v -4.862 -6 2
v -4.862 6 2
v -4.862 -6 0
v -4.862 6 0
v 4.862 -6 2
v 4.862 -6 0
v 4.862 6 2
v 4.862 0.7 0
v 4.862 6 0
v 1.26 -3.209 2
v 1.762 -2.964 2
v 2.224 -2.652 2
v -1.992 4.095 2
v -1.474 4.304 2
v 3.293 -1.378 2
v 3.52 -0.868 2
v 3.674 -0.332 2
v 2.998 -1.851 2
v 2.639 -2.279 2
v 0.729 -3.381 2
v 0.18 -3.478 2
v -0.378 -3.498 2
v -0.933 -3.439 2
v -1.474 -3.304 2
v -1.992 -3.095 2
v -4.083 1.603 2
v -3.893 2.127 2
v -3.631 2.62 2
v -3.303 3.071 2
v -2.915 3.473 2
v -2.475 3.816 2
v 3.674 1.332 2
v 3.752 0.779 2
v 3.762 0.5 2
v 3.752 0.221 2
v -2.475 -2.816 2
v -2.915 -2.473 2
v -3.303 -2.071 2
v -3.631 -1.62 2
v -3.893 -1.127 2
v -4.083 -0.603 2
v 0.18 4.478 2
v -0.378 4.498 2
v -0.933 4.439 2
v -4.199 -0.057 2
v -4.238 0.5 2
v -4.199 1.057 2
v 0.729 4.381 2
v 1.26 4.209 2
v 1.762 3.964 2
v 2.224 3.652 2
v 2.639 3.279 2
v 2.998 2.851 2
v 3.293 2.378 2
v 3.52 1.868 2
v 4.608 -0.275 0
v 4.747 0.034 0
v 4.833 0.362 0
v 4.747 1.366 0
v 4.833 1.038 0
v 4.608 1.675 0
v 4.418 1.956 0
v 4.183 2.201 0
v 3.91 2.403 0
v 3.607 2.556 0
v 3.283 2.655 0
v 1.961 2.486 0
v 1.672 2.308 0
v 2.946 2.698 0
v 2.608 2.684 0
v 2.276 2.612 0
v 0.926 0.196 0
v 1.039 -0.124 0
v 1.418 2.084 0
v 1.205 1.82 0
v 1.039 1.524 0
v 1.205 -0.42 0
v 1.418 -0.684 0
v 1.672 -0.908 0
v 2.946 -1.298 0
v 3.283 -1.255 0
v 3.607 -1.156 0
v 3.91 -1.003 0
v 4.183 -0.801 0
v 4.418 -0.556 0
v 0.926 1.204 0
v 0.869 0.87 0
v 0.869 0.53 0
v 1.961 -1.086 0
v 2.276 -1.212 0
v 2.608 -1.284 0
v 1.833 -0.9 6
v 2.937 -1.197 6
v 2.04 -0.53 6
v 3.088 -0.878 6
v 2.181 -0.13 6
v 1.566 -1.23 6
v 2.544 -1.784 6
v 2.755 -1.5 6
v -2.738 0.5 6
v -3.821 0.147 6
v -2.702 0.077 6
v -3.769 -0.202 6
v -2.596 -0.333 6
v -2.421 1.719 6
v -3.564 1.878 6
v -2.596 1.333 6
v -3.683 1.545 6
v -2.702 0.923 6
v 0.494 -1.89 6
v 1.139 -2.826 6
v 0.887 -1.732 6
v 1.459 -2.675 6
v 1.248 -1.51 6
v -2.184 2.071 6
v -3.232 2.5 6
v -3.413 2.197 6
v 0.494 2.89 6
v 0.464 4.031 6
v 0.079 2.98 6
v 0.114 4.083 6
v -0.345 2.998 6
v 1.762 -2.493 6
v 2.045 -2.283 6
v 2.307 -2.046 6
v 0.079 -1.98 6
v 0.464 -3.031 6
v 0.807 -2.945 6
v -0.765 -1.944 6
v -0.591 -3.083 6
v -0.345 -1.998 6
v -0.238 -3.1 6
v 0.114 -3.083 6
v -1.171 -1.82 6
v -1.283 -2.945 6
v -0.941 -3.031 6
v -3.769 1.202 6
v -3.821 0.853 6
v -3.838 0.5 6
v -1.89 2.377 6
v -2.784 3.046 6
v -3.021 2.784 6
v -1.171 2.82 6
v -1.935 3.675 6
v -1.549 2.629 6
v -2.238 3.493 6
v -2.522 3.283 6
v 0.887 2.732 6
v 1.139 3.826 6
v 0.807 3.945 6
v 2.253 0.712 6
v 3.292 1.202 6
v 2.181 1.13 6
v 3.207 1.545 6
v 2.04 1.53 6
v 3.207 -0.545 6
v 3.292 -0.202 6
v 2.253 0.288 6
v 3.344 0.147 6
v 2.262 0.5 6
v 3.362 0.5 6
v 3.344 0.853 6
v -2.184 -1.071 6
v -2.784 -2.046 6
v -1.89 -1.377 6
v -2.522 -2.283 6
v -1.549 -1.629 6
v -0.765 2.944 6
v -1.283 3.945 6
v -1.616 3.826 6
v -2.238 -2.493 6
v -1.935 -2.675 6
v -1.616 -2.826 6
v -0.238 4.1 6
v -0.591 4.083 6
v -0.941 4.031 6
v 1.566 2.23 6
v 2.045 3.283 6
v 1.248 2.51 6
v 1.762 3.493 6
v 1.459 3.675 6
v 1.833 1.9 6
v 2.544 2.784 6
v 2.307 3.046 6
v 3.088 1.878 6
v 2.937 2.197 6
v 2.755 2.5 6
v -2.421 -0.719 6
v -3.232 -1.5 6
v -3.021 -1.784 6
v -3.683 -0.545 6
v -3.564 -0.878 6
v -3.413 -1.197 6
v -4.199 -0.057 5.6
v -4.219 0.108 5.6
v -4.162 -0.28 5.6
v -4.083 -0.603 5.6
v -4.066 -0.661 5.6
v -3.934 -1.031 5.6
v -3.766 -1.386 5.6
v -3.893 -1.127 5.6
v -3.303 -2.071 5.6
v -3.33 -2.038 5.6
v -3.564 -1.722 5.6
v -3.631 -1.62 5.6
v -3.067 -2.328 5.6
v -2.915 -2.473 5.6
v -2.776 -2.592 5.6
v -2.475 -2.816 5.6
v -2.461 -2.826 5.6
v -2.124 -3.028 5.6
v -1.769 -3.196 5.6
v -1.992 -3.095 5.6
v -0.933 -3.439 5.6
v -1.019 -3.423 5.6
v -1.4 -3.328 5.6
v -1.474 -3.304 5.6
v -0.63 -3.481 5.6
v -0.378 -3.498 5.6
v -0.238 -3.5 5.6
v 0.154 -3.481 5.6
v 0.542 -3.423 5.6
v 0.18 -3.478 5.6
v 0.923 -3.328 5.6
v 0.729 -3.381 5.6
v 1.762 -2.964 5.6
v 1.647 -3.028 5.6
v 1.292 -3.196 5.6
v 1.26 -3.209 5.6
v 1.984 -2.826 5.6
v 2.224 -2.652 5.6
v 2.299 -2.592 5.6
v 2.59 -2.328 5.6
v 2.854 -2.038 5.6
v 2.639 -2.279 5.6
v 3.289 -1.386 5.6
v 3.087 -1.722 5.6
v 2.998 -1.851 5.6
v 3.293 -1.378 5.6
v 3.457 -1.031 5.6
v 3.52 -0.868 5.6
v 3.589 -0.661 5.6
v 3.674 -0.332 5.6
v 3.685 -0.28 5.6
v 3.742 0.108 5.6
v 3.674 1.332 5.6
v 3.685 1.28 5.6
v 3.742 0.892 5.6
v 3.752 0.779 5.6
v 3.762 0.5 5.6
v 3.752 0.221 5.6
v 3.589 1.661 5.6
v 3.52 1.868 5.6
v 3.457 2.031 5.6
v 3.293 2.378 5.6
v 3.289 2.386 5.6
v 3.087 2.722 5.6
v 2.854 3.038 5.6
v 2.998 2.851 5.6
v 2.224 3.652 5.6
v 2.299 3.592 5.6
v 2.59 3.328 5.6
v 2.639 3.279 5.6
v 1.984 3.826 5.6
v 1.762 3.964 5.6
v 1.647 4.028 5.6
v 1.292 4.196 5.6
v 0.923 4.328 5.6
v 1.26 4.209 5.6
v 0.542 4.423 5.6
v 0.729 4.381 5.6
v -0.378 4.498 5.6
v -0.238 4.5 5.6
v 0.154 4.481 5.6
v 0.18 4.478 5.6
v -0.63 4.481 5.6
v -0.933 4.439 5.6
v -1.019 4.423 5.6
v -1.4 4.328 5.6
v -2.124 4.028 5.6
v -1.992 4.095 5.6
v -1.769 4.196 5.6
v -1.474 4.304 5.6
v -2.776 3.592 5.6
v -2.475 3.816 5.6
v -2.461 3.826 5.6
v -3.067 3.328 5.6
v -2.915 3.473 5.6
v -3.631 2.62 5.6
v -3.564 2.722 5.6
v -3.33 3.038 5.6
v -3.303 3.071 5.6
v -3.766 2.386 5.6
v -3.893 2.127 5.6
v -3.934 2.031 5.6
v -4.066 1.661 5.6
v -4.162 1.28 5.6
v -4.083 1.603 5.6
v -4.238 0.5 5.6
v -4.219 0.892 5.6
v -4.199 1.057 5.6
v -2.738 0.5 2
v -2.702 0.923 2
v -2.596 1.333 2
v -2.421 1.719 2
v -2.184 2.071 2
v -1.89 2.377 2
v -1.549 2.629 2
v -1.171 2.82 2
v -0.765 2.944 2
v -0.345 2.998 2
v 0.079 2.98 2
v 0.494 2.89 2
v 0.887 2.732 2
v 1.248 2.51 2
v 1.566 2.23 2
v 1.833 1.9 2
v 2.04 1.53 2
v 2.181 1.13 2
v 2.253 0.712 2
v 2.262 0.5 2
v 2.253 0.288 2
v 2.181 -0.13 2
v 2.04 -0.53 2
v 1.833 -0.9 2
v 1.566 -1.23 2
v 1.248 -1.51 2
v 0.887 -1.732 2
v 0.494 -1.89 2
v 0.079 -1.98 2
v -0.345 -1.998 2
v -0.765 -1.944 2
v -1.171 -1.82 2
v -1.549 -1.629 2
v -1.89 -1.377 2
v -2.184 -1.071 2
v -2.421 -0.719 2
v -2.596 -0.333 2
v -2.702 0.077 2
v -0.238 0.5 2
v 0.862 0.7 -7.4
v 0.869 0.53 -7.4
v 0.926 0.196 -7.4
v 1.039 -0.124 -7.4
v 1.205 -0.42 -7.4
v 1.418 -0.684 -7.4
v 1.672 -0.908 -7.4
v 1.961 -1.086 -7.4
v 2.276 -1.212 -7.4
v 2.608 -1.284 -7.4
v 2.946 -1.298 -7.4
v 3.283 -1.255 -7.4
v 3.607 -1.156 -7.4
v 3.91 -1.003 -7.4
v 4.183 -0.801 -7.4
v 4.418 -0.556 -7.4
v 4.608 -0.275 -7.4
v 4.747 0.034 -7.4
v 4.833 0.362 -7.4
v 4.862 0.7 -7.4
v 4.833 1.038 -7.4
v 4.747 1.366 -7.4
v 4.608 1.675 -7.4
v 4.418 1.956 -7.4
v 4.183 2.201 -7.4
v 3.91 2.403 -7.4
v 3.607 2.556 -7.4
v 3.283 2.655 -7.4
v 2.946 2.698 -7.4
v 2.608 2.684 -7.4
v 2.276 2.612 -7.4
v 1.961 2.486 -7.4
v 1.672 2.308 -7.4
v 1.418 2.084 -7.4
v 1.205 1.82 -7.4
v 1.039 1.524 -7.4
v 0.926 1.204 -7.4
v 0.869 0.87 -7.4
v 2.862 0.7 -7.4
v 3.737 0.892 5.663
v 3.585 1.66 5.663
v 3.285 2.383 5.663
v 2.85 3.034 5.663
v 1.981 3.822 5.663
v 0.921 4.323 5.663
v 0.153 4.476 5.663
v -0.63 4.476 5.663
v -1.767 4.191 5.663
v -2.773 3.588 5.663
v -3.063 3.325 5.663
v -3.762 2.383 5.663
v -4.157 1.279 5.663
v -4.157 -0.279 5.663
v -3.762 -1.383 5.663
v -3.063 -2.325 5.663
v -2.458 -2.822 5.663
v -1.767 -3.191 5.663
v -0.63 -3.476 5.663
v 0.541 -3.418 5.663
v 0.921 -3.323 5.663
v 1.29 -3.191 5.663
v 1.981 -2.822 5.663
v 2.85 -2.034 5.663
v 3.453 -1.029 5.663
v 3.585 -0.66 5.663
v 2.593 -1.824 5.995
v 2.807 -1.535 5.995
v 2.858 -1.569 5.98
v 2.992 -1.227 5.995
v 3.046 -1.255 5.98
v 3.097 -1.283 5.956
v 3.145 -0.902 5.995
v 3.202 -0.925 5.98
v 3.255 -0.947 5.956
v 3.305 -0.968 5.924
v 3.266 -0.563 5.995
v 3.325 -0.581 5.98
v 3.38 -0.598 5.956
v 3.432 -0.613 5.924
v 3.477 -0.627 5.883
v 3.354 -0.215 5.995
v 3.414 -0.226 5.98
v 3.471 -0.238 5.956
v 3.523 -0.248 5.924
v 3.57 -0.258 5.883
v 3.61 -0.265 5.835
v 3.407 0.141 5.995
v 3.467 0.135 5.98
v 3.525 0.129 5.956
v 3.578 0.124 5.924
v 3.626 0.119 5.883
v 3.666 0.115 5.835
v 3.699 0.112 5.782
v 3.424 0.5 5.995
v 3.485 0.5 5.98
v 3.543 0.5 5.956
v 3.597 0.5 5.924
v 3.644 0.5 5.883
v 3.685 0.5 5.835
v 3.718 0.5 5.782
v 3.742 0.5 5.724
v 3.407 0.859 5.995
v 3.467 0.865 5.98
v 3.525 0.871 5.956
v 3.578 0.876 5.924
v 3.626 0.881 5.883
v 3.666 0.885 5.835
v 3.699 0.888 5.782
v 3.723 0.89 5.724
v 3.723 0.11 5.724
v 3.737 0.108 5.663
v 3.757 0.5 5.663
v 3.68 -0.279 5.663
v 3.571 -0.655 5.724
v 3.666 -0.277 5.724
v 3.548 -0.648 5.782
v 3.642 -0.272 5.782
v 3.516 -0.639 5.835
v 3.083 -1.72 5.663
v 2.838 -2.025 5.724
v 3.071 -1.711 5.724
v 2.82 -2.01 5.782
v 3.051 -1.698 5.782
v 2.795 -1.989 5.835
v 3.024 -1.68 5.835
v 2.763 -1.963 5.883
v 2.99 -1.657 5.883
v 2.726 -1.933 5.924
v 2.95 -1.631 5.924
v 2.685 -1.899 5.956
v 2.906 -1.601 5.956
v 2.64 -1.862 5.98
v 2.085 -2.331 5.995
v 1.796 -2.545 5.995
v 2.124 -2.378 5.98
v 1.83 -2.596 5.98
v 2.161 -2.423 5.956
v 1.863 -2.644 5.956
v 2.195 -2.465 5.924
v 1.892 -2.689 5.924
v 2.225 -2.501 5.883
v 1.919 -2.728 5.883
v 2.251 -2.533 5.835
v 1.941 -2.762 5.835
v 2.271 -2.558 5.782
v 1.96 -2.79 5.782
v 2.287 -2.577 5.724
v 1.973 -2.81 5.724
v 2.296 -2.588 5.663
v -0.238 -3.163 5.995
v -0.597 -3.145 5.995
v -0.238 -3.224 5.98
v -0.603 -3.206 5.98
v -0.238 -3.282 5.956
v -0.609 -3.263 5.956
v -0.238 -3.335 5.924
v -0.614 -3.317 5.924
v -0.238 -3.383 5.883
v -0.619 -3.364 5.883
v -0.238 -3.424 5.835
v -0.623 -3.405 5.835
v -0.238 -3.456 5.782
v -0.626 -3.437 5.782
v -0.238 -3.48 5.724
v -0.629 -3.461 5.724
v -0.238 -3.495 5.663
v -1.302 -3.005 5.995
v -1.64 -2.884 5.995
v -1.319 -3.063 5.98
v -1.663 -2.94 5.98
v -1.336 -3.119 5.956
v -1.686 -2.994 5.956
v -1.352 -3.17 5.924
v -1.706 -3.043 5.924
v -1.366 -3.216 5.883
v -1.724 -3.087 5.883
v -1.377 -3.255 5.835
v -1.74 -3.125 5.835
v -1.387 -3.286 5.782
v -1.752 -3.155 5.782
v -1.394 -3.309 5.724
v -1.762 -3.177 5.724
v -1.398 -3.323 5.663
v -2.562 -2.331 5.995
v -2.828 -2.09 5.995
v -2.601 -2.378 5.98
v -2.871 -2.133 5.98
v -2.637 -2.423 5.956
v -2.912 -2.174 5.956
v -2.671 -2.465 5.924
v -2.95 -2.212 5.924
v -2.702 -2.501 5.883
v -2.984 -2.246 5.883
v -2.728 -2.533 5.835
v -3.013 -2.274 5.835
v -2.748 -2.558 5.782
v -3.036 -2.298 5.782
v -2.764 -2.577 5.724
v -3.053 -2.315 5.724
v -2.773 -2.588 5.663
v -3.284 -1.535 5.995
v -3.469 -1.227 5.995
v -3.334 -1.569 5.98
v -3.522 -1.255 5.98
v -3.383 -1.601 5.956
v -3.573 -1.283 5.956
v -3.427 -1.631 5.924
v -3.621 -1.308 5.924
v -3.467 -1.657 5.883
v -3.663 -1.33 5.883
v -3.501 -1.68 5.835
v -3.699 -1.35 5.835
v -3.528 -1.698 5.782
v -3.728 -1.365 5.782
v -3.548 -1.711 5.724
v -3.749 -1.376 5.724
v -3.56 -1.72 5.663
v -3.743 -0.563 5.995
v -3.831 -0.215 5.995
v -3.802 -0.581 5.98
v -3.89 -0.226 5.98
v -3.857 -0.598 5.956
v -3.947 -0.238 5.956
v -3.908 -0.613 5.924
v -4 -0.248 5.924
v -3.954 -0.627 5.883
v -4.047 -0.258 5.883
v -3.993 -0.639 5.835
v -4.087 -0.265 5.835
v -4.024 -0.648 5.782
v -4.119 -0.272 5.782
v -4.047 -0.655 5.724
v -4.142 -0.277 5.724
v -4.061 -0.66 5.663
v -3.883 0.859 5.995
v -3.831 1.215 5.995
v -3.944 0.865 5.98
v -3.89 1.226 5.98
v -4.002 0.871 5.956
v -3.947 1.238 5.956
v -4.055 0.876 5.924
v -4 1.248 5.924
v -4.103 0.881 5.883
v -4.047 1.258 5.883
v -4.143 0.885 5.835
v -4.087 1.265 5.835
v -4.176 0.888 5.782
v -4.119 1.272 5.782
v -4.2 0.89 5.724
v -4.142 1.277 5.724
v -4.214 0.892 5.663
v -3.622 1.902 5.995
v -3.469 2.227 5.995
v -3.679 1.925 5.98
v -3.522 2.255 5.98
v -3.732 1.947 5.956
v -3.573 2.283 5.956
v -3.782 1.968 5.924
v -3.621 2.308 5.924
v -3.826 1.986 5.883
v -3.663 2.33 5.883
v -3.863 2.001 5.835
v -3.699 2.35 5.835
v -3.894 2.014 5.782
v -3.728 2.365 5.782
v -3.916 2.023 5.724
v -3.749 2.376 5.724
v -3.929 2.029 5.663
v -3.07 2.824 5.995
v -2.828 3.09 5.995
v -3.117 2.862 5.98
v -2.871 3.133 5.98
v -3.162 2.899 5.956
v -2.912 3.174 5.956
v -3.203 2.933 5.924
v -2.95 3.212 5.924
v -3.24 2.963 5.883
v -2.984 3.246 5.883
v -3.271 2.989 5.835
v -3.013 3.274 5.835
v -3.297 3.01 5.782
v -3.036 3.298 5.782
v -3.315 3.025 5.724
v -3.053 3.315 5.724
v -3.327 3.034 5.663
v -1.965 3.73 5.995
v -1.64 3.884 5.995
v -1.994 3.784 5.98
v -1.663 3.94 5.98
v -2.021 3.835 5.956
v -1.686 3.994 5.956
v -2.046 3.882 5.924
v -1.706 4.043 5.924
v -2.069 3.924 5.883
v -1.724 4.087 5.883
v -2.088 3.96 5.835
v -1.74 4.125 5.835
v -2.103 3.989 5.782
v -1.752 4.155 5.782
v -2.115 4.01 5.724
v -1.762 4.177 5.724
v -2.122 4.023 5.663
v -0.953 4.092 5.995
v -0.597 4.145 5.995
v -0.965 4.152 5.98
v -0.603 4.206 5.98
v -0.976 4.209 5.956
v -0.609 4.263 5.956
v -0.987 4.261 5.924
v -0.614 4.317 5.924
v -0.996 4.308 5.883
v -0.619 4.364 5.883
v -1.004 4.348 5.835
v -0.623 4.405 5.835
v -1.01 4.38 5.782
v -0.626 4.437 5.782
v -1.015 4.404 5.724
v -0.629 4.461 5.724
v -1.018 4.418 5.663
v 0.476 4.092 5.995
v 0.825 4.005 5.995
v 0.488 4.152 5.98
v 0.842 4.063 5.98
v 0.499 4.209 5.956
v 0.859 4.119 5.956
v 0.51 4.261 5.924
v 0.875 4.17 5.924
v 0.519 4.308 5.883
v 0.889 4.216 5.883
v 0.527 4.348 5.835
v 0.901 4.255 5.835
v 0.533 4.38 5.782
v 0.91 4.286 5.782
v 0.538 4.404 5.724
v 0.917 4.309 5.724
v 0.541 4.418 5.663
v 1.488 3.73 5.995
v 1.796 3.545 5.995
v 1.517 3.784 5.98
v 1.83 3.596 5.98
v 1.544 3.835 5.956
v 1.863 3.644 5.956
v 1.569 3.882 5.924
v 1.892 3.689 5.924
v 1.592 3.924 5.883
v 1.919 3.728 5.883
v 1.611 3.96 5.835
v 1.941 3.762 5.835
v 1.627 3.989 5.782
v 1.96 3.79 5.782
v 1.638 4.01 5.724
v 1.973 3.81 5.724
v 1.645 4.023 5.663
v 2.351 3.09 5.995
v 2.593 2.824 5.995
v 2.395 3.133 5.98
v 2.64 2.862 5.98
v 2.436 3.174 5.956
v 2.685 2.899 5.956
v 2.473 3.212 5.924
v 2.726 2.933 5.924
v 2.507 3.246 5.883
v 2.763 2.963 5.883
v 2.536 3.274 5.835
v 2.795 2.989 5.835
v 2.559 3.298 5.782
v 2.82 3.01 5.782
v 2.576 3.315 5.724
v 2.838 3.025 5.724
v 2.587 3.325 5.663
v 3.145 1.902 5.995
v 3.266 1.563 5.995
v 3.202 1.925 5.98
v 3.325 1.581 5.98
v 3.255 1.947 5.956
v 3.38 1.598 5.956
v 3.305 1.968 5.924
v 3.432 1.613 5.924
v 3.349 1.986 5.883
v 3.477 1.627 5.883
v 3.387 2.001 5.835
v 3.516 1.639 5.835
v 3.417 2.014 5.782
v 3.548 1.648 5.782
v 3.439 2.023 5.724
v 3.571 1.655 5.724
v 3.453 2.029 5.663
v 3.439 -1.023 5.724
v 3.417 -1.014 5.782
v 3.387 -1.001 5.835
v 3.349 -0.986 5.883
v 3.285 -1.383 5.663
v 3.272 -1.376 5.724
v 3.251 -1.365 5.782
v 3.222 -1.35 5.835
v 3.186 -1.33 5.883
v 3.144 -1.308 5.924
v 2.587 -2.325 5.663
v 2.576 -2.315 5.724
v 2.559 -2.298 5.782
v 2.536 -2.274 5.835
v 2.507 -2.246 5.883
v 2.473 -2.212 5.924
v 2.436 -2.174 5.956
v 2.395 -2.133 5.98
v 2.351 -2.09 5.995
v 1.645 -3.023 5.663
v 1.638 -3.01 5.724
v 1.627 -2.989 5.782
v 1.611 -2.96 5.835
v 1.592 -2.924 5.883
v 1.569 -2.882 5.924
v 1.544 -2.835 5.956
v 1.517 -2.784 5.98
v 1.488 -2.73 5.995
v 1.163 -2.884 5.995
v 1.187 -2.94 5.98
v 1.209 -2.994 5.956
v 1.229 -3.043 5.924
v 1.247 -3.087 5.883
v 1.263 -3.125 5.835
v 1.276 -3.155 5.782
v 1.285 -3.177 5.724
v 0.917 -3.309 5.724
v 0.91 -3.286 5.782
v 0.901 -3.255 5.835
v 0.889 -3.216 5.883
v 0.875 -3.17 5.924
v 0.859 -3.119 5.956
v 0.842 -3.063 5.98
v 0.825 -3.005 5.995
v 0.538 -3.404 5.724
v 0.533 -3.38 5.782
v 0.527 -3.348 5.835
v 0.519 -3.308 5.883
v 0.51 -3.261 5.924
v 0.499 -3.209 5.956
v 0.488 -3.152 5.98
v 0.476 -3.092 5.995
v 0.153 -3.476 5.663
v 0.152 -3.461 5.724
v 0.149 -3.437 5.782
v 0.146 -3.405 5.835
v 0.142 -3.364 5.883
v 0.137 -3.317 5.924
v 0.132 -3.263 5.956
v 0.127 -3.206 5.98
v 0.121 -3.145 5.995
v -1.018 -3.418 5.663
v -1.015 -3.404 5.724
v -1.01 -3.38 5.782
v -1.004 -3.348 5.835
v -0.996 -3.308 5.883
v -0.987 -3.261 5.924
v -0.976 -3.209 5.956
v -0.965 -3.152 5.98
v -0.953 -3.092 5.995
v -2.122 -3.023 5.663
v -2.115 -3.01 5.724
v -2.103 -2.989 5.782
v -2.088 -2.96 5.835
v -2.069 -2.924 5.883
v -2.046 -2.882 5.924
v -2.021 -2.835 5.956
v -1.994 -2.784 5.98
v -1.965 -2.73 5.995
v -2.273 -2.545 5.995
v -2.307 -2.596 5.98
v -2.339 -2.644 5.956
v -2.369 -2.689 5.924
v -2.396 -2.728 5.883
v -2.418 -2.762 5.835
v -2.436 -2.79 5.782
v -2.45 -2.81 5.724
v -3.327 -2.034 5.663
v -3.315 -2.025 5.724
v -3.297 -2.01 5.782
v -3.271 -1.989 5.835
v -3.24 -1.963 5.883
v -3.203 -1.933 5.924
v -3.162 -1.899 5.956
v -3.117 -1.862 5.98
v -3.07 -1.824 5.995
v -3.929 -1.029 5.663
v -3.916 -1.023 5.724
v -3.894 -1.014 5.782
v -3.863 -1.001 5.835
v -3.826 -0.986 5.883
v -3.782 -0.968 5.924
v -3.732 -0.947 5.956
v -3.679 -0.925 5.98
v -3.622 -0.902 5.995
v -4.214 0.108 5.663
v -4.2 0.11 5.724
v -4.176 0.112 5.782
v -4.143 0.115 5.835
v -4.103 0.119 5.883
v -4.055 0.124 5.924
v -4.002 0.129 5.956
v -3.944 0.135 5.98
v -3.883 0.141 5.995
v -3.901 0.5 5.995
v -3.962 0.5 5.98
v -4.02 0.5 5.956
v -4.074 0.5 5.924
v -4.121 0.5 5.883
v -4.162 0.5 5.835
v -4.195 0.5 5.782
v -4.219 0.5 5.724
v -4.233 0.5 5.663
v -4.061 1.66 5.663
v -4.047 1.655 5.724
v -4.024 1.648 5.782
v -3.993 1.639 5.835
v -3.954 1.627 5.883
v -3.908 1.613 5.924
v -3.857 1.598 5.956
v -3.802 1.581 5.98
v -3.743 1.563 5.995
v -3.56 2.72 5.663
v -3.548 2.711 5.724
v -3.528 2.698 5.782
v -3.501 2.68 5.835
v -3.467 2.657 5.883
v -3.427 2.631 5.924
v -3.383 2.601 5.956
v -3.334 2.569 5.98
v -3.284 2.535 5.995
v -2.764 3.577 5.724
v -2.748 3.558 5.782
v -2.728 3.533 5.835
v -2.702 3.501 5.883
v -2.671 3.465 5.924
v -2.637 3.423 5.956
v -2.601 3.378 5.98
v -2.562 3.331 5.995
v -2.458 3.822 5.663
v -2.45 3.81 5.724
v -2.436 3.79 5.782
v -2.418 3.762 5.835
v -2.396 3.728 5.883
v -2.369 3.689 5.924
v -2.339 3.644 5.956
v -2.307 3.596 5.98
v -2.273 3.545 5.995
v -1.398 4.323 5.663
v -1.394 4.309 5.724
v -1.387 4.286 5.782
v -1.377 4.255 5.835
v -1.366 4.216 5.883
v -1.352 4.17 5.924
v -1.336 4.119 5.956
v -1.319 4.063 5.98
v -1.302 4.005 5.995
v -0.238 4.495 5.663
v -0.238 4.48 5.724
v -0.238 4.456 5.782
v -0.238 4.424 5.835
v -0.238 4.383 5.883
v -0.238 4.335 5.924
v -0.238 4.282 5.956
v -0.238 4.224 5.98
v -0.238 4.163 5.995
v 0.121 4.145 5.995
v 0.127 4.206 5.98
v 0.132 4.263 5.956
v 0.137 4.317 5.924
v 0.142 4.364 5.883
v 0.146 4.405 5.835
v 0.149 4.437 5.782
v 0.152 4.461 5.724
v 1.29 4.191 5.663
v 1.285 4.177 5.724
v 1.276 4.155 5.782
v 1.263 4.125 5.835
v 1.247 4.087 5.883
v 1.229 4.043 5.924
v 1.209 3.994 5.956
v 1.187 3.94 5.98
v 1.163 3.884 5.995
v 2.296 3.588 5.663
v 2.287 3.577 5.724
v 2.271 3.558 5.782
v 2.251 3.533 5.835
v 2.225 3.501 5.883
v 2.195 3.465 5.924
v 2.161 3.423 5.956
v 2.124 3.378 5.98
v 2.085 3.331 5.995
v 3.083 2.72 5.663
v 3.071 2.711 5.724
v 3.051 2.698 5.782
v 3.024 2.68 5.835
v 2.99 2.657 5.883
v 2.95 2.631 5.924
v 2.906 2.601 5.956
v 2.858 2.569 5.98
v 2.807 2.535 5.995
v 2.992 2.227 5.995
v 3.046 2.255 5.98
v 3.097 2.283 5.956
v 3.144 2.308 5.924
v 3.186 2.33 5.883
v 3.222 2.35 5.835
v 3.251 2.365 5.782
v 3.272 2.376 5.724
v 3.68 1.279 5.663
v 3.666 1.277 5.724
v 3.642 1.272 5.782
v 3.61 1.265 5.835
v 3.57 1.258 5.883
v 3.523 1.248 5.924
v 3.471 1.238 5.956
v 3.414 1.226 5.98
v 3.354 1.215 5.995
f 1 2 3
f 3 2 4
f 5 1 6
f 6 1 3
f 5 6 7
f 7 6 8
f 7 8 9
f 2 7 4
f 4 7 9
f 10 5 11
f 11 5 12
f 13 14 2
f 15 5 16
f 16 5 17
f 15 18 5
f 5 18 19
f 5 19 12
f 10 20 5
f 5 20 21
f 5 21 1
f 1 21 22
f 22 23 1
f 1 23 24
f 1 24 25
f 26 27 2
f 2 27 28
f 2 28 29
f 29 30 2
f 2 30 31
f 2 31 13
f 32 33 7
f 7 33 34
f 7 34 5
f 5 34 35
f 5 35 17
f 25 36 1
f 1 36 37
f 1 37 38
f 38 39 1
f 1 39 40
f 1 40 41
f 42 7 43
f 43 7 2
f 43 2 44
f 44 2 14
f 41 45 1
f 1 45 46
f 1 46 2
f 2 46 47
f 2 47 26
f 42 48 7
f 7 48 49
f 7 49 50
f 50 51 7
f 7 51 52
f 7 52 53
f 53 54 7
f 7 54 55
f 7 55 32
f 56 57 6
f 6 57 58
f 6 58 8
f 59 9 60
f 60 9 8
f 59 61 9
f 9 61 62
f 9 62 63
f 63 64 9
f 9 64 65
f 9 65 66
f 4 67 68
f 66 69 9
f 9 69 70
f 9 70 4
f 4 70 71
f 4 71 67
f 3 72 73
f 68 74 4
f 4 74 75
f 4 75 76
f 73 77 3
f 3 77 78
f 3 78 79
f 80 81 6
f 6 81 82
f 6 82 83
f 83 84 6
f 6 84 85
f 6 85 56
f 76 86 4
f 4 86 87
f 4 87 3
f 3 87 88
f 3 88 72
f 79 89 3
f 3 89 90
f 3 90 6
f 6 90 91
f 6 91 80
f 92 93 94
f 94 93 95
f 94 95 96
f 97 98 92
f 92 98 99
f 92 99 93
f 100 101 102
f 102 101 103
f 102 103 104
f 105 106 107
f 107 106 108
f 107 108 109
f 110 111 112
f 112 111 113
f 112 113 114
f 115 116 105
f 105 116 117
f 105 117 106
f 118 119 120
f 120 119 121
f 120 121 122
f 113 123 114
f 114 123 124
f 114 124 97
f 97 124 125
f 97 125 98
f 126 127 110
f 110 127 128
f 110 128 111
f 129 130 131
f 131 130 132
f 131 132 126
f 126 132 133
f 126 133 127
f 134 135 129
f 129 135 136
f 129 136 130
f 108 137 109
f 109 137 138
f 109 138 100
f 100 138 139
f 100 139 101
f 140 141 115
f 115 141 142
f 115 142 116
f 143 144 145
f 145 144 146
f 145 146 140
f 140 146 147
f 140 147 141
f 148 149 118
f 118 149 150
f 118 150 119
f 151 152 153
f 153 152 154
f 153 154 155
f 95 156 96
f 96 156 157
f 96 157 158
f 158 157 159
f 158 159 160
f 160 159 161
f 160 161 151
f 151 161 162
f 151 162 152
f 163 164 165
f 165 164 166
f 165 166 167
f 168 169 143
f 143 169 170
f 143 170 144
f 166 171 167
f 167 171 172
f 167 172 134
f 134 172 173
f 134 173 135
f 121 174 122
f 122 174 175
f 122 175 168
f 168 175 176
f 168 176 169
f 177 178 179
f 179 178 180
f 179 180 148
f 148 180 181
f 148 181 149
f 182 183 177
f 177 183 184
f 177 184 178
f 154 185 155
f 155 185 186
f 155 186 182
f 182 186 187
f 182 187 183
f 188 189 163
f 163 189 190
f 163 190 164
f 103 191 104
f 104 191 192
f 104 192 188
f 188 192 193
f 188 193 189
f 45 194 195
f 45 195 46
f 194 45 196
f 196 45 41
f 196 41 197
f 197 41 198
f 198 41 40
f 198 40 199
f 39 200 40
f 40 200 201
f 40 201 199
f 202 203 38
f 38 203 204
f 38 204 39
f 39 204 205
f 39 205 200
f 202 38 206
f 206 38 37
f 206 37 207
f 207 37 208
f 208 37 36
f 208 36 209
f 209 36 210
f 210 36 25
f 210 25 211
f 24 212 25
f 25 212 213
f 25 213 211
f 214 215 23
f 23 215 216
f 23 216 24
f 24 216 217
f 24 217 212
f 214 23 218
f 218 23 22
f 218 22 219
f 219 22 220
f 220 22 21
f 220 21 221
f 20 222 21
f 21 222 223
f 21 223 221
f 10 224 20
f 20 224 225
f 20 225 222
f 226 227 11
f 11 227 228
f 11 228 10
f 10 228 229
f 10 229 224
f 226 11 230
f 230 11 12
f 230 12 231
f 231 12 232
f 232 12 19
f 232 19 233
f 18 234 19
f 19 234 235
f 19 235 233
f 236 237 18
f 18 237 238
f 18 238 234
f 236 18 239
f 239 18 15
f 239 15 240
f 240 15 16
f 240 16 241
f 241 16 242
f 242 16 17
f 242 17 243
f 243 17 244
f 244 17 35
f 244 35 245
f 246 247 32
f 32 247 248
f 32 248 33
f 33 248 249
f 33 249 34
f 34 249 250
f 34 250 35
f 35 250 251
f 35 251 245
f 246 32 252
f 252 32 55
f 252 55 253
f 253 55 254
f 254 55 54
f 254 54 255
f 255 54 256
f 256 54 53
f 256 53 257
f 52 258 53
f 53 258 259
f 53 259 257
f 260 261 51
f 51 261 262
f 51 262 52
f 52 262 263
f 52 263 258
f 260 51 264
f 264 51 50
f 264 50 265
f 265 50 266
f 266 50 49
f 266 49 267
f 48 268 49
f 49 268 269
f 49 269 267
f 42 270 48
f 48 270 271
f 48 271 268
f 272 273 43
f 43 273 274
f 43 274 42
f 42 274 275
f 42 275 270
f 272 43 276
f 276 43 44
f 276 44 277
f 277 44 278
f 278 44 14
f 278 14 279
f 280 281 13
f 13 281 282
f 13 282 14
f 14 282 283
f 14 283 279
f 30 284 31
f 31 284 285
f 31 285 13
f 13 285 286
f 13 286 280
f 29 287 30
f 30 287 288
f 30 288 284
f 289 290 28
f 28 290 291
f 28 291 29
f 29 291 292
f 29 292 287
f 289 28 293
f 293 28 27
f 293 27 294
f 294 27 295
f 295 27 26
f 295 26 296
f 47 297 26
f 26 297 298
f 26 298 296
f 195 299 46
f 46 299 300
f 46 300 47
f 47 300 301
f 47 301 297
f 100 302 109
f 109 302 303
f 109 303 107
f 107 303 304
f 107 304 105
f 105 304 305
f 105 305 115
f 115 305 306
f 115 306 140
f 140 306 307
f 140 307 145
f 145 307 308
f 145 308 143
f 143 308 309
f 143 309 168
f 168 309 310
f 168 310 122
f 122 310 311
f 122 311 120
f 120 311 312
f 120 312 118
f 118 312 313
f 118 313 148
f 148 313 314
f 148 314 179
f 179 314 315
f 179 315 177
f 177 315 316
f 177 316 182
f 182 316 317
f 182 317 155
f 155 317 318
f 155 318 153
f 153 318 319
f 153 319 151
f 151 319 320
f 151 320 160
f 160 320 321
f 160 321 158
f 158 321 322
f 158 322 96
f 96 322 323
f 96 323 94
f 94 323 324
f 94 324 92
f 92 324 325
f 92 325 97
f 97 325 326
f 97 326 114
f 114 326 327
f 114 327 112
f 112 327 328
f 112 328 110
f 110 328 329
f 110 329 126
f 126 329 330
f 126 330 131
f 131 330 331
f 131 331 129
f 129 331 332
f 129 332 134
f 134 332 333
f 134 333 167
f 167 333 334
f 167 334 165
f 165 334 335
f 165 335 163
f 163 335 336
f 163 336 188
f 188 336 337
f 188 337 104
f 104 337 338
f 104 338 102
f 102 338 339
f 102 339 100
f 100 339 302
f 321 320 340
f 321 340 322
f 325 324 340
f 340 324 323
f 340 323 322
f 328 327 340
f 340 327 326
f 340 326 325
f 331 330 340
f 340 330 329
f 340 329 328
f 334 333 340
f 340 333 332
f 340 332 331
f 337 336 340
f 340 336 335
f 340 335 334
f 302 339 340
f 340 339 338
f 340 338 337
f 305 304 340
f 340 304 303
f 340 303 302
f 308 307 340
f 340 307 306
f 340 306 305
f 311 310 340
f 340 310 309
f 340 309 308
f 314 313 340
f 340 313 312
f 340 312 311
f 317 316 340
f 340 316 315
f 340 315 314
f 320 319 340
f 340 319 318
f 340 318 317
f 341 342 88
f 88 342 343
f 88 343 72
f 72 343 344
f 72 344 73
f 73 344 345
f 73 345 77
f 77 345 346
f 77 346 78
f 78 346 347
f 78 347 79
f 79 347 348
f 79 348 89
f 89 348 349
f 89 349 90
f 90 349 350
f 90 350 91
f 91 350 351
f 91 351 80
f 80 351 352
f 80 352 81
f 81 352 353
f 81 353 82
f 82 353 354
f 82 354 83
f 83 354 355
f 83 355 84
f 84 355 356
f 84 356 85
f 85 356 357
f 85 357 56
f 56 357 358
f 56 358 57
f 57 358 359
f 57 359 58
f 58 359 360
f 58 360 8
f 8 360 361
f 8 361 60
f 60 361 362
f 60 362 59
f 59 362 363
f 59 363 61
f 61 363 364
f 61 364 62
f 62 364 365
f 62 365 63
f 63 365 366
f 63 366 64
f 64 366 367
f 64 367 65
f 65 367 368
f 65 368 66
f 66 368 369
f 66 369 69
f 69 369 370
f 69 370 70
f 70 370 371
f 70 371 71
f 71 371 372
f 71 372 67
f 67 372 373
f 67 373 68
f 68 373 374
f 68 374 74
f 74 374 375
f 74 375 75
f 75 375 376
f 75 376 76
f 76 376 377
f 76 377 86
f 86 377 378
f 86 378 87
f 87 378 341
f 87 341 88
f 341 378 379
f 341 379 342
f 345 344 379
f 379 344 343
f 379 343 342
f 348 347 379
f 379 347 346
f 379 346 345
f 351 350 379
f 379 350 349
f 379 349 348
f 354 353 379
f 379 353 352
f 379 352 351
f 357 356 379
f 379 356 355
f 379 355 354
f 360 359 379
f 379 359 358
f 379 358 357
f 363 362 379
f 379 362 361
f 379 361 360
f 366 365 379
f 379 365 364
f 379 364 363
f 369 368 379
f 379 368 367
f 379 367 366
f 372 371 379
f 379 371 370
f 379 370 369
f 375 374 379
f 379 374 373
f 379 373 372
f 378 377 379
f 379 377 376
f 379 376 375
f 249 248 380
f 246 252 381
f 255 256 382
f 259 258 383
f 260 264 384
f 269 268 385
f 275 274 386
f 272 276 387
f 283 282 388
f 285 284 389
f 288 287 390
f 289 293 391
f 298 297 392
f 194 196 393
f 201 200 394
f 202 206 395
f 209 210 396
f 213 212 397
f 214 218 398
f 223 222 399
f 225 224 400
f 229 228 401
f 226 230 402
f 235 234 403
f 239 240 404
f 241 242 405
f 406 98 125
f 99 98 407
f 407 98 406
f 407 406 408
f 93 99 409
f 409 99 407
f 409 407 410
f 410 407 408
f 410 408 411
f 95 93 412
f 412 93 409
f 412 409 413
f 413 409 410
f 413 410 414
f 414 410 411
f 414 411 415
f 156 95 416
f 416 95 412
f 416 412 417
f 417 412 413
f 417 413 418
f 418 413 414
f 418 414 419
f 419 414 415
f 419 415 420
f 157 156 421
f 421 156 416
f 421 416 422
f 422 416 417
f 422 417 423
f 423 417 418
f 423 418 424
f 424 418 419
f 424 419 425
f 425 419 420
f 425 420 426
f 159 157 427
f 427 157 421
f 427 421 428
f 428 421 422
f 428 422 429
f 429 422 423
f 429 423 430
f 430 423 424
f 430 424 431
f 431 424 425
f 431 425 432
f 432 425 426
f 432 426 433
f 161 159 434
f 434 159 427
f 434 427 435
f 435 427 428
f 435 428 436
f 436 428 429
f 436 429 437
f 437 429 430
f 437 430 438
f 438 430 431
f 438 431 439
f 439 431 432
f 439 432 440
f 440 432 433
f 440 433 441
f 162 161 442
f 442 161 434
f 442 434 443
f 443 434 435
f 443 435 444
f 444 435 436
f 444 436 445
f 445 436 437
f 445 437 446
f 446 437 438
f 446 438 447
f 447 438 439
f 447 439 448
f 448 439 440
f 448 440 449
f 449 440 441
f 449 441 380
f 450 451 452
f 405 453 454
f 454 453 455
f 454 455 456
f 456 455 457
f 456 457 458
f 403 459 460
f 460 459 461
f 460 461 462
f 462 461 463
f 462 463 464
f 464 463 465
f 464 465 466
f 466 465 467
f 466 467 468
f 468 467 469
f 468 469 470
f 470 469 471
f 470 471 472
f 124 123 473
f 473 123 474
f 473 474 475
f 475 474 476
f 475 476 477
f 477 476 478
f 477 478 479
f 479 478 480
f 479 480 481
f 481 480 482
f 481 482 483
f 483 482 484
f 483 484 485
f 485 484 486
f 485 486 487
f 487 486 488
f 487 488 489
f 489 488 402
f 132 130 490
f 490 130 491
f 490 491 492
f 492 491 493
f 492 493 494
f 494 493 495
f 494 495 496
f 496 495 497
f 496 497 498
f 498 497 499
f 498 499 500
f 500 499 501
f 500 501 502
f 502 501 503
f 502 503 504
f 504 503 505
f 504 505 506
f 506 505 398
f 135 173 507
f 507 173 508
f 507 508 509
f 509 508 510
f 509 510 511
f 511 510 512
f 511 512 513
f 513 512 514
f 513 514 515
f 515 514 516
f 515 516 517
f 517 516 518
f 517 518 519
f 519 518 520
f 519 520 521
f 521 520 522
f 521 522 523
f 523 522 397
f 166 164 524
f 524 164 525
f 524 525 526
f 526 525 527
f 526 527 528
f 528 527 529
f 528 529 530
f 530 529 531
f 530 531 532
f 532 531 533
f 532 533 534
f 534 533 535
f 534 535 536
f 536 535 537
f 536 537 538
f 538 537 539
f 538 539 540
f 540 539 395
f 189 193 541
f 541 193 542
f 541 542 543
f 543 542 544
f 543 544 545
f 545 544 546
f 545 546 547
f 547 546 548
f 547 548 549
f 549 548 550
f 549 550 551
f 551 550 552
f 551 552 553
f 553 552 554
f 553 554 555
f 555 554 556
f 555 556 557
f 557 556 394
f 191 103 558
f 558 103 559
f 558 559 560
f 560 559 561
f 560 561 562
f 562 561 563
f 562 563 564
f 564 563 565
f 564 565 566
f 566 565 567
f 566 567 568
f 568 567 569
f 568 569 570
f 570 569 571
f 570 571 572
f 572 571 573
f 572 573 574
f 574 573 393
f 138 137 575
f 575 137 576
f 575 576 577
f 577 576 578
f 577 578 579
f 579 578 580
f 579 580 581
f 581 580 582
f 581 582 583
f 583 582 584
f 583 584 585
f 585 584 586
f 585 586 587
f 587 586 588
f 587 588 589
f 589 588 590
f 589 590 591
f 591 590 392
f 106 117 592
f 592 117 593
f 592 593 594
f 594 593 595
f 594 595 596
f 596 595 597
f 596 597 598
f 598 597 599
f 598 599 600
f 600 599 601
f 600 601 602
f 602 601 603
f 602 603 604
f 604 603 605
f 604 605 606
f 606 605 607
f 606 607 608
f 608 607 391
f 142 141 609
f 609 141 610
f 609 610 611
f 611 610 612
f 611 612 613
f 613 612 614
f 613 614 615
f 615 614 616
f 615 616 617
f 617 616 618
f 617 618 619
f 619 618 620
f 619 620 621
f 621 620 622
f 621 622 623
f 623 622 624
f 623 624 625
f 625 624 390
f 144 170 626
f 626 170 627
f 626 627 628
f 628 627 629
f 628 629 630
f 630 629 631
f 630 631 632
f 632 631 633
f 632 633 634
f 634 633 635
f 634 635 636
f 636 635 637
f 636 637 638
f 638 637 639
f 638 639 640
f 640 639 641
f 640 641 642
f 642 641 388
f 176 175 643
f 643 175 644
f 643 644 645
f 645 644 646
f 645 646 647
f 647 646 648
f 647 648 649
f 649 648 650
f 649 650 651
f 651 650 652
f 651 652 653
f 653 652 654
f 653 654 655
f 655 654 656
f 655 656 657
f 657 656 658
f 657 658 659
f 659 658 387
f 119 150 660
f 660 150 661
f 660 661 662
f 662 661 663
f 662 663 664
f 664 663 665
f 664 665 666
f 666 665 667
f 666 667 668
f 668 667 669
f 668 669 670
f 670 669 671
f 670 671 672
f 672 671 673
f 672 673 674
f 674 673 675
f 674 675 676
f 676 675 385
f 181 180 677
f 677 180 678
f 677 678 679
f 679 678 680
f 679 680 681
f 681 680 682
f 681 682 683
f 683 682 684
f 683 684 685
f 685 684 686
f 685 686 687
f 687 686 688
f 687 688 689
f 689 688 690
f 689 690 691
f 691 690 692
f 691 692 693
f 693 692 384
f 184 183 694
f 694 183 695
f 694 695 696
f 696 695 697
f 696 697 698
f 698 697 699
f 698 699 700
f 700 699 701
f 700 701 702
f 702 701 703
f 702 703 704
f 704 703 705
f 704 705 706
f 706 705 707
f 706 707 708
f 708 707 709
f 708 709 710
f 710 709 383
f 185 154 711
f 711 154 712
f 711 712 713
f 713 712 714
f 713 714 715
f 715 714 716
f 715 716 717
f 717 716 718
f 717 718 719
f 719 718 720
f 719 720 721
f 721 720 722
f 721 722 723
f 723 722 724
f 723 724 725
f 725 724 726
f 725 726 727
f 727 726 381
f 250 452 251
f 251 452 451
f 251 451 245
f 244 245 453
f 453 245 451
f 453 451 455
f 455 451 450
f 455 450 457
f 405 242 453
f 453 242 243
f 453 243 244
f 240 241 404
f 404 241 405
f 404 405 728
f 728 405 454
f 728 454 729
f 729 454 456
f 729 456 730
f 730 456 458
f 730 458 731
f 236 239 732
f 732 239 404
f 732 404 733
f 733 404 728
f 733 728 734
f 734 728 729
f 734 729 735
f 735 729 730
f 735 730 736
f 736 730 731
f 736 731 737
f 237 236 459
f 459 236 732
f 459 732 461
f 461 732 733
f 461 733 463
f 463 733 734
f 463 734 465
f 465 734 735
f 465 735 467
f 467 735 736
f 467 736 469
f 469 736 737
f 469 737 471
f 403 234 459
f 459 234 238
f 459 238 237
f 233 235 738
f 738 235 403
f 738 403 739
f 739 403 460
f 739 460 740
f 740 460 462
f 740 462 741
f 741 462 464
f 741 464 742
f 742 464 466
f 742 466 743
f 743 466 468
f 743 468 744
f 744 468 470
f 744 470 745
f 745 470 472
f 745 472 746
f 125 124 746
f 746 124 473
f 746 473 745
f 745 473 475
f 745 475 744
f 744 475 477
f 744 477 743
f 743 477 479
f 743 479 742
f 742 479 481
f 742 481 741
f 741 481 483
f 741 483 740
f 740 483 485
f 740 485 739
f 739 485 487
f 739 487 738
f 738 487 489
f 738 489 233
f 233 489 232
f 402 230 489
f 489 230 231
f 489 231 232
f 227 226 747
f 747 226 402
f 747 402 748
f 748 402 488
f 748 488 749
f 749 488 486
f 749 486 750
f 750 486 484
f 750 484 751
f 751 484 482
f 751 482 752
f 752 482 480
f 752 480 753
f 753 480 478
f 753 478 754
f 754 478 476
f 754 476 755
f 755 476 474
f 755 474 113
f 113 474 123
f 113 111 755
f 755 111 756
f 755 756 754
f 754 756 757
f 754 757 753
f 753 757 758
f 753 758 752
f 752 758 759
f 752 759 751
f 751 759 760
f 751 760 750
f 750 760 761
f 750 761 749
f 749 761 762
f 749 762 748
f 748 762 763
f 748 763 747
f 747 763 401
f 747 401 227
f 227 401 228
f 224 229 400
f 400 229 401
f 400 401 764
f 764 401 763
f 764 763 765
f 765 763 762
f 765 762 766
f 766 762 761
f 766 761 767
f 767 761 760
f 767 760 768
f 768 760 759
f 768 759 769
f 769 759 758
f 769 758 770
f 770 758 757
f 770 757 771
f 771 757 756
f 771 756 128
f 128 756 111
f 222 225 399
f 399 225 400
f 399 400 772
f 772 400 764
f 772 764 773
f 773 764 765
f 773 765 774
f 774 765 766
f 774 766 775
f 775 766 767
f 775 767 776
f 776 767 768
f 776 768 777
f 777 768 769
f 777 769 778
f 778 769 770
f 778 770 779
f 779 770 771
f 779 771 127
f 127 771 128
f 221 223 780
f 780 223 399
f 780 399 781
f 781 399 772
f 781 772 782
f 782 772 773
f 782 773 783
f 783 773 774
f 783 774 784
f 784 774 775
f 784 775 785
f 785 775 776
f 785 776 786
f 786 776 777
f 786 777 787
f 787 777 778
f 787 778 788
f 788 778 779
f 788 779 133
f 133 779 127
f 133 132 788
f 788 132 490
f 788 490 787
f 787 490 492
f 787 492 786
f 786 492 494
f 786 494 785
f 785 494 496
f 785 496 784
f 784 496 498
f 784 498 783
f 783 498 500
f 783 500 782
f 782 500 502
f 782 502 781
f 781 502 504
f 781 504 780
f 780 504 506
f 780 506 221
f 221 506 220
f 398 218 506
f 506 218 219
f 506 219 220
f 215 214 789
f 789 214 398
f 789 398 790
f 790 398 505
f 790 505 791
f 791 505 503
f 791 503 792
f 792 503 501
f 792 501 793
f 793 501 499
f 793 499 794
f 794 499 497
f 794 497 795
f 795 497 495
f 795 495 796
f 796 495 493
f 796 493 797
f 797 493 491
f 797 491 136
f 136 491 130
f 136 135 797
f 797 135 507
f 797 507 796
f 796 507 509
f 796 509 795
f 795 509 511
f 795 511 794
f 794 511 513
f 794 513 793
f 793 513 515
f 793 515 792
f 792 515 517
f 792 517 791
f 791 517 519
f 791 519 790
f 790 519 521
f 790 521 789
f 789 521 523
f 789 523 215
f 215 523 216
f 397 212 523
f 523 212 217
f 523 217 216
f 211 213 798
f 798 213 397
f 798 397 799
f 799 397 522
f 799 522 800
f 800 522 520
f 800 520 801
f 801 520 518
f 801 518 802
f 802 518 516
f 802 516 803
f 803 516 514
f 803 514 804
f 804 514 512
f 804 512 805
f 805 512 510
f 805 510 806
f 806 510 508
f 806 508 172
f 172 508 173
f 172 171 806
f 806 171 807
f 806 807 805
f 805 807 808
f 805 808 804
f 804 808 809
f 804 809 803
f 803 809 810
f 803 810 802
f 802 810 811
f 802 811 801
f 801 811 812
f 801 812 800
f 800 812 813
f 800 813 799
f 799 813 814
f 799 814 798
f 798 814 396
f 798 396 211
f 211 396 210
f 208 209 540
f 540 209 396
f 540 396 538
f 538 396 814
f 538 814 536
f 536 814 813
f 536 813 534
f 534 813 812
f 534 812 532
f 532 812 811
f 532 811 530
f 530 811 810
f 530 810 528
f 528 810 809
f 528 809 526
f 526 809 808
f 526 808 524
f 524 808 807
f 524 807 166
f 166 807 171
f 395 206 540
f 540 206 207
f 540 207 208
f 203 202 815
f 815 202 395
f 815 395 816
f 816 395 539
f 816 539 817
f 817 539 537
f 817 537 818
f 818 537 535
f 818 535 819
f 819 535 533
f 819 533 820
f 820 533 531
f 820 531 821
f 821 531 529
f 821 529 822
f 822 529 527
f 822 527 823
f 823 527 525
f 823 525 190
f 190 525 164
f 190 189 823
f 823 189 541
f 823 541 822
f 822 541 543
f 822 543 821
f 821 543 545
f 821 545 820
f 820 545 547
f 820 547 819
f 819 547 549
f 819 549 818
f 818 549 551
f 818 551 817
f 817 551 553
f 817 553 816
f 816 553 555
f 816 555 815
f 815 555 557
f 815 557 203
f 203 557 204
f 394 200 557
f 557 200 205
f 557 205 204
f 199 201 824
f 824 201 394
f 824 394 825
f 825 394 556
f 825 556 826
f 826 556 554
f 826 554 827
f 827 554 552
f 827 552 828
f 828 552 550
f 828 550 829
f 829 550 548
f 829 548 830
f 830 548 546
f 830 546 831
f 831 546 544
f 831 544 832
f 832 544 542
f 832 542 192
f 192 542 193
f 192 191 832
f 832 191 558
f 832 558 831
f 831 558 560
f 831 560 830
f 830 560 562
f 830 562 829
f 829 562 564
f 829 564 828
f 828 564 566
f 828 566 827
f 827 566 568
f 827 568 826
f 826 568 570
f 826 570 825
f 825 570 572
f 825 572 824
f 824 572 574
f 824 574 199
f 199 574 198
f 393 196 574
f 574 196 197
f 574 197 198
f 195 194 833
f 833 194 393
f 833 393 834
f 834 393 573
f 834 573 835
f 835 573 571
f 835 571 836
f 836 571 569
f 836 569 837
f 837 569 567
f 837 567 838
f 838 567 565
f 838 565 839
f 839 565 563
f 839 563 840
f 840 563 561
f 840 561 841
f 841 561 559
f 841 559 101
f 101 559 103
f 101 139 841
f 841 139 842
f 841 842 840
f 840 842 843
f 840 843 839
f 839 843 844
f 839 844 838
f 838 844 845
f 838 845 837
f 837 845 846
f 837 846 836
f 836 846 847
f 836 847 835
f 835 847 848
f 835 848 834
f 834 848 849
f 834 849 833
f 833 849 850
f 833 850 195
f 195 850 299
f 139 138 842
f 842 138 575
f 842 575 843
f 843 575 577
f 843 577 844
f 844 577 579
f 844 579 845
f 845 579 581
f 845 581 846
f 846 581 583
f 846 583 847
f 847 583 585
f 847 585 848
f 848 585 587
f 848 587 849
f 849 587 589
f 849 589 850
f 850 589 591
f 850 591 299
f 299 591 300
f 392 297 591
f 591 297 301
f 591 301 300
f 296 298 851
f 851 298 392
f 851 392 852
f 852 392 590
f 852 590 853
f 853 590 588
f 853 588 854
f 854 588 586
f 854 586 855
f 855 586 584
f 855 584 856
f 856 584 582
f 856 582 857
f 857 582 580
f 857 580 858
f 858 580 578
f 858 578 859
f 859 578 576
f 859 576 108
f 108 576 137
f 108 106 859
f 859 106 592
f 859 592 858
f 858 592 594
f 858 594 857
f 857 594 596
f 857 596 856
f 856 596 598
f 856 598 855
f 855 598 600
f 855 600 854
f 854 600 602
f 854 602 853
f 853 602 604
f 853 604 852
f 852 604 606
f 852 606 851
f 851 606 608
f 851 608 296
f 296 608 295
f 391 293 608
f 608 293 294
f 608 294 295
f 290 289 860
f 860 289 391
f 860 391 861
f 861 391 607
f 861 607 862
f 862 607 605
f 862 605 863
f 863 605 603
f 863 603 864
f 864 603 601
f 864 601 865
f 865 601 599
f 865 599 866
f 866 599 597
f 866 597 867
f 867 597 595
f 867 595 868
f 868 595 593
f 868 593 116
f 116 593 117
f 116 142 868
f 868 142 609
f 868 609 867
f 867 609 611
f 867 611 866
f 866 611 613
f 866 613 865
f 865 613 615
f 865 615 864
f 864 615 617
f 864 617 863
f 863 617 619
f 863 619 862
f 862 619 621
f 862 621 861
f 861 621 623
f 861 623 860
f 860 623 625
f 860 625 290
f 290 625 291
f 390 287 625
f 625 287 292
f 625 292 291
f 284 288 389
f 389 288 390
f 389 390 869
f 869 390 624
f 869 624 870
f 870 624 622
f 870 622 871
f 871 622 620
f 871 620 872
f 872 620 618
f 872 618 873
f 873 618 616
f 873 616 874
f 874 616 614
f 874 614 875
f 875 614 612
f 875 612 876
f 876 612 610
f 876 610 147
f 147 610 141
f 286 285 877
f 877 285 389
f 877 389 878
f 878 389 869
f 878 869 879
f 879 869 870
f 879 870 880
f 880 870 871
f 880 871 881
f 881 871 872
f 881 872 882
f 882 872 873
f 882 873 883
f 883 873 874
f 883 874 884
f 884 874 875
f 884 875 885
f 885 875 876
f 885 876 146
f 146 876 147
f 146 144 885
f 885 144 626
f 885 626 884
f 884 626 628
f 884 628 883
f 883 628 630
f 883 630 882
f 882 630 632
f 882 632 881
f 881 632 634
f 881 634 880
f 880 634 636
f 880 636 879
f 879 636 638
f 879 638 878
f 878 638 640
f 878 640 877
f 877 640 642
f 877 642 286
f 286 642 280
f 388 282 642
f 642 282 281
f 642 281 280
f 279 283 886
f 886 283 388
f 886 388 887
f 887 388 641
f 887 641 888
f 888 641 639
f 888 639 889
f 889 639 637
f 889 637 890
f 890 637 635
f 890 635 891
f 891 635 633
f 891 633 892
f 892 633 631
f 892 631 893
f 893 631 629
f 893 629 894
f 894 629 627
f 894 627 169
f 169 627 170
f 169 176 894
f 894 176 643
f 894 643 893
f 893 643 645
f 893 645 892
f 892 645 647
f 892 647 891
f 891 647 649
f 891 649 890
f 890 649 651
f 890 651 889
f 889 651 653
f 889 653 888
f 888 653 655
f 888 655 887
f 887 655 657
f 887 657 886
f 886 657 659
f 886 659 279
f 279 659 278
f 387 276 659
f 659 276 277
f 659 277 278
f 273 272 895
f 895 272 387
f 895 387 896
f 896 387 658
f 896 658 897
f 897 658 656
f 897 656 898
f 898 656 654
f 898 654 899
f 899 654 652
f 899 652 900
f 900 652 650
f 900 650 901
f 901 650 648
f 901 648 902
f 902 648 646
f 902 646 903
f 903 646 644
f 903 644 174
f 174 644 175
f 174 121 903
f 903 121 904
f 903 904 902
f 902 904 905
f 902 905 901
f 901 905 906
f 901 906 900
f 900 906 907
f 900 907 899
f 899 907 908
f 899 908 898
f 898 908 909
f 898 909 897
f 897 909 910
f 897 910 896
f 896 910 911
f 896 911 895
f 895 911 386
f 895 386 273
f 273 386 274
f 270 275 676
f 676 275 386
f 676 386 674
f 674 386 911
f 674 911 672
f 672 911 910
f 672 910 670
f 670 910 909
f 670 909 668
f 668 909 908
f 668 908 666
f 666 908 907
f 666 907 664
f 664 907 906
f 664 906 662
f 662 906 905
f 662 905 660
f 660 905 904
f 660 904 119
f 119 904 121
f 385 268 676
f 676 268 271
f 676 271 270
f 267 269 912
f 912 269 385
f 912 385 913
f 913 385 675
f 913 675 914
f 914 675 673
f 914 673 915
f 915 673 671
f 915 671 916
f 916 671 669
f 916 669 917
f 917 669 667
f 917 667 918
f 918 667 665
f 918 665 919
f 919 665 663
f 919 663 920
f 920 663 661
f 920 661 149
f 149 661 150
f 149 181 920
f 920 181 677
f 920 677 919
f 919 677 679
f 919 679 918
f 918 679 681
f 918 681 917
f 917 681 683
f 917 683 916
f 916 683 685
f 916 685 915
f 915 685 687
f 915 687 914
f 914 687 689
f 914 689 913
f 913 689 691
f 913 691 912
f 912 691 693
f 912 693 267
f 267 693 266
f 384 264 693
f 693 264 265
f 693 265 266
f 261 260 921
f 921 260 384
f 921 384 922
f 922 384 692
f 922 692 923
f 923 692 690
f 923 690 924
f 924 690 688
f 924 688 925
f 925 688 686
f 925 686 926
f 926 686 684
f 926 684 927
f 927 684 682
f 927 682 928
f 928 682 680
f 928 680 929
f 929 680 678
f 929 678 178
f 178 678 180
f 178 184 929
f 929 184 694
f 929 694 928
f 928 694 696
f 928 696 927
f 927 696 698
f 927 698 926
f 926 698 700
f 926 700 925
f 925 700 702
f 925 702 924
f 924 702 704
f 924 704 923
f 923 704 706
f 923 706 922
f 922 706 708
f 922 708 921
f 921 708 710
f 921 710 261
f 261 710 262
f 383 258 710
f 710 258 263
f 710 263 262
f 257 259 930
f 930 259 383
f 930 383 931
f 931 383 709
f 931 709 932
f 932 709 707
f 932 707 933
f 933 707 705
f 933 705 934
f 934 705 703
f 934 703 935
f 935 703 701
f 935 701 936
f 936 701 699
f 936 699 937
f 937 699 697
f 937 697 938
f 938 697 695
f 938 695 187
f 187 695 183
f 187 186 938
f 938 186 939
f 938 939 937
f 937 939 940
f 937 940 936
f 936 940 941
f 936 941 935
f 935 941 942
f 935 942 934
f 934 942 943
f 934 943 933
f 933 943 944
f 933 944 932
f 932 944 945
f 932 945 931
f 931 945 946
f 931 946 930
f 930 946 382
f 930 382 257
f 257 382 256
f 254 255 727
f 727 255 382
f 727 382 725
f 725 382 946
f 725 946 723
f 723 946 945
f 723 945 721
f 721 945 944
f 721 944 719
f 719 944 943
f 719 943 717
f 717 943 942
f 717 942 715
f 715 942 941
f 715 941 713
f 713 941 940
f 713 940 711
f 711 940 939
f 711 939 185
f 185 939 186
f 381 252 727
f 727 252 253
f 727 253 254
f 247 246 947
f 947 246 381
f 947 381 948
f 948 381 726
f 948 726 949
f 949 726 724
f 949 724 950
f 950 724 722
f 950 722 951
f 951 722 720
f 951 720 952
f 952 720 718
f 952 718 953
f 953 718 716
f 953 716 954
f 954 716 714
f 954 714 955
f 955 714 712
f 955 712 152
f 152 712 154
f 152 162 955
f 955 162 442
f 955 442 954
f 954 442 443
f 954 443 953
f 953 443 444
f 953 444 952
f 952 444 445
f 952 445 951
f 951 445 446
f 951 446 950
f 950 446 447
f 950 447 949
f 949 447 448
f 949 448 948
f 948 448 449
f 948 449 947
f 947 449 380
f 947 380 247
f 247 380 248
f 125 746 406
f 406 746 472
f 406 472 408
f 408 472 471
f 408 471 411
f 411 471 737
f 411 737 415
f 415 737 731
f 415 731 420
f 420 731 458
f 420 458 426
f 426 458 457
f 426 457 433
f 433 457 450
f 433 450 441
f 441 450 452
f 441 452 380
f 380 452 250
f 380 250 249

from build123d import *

# Parameters (mm, degrees)
SKETCH_2_W      = 9.723167254
SKETCH_2_H      = 12
EXTRUDE_1_DEPTH = 2
SKETCH_3_R      = 4
SKETCH_3_R_2    = 2.5
EXTRUDE_2_DEPTH = 4
SKETCH_4_R      = 2
EXTRUDE_3_DEPTH = 7.4
FILLET_1_R      = 0.4


with BuildPart() as part:
    # Эскиз2 → Бобышка-Вытянуть1 (new body)
    with BuildSketch(Plane.XY):
        Rectangle(SKETCH_2_W, SKETCH_2_H)
    extrude(amount=EXTRUDE_1_DEPTH)

    # Эскиз3 → Бобышка-Вытянуть2 (add)
    with BuildSketch(Plane.XY.offset(2)):
        with Locations((-0.238416373, 0.5)):
            Circle(SKETCH_3_R)
        with Locations((-0.238416373, 0.5)):
            Circle(SKETCH_3_R_2, mode=Mode.SUBTRACT)
    extrude(amount=EXTRUDE_2_DEPTH)

    # Эскиз4 → Бобышка-Вытянуть3 (add)
    with BuildSketch(Plane(origin=(0, 0, 0), x_dir=(-1, 0, 0), z_dir=(0, 0, -1))):
        with Locations(Location((-2.861583627, 0.7, 0), (0, 0, 180))):
            Circle(SKETCH_4_R)
    extrude(amount=EXTRUDE_3_DEPTH)

    # Скругление1
    fillet_1_edges = [part.edges().sort_by_distance(p)[0] for p in [
        (-4.238416373, 0.5, 6),
    ]]
    fillet(fillet_1_edges, radius=FILLET_1_R)


solid = part.part
